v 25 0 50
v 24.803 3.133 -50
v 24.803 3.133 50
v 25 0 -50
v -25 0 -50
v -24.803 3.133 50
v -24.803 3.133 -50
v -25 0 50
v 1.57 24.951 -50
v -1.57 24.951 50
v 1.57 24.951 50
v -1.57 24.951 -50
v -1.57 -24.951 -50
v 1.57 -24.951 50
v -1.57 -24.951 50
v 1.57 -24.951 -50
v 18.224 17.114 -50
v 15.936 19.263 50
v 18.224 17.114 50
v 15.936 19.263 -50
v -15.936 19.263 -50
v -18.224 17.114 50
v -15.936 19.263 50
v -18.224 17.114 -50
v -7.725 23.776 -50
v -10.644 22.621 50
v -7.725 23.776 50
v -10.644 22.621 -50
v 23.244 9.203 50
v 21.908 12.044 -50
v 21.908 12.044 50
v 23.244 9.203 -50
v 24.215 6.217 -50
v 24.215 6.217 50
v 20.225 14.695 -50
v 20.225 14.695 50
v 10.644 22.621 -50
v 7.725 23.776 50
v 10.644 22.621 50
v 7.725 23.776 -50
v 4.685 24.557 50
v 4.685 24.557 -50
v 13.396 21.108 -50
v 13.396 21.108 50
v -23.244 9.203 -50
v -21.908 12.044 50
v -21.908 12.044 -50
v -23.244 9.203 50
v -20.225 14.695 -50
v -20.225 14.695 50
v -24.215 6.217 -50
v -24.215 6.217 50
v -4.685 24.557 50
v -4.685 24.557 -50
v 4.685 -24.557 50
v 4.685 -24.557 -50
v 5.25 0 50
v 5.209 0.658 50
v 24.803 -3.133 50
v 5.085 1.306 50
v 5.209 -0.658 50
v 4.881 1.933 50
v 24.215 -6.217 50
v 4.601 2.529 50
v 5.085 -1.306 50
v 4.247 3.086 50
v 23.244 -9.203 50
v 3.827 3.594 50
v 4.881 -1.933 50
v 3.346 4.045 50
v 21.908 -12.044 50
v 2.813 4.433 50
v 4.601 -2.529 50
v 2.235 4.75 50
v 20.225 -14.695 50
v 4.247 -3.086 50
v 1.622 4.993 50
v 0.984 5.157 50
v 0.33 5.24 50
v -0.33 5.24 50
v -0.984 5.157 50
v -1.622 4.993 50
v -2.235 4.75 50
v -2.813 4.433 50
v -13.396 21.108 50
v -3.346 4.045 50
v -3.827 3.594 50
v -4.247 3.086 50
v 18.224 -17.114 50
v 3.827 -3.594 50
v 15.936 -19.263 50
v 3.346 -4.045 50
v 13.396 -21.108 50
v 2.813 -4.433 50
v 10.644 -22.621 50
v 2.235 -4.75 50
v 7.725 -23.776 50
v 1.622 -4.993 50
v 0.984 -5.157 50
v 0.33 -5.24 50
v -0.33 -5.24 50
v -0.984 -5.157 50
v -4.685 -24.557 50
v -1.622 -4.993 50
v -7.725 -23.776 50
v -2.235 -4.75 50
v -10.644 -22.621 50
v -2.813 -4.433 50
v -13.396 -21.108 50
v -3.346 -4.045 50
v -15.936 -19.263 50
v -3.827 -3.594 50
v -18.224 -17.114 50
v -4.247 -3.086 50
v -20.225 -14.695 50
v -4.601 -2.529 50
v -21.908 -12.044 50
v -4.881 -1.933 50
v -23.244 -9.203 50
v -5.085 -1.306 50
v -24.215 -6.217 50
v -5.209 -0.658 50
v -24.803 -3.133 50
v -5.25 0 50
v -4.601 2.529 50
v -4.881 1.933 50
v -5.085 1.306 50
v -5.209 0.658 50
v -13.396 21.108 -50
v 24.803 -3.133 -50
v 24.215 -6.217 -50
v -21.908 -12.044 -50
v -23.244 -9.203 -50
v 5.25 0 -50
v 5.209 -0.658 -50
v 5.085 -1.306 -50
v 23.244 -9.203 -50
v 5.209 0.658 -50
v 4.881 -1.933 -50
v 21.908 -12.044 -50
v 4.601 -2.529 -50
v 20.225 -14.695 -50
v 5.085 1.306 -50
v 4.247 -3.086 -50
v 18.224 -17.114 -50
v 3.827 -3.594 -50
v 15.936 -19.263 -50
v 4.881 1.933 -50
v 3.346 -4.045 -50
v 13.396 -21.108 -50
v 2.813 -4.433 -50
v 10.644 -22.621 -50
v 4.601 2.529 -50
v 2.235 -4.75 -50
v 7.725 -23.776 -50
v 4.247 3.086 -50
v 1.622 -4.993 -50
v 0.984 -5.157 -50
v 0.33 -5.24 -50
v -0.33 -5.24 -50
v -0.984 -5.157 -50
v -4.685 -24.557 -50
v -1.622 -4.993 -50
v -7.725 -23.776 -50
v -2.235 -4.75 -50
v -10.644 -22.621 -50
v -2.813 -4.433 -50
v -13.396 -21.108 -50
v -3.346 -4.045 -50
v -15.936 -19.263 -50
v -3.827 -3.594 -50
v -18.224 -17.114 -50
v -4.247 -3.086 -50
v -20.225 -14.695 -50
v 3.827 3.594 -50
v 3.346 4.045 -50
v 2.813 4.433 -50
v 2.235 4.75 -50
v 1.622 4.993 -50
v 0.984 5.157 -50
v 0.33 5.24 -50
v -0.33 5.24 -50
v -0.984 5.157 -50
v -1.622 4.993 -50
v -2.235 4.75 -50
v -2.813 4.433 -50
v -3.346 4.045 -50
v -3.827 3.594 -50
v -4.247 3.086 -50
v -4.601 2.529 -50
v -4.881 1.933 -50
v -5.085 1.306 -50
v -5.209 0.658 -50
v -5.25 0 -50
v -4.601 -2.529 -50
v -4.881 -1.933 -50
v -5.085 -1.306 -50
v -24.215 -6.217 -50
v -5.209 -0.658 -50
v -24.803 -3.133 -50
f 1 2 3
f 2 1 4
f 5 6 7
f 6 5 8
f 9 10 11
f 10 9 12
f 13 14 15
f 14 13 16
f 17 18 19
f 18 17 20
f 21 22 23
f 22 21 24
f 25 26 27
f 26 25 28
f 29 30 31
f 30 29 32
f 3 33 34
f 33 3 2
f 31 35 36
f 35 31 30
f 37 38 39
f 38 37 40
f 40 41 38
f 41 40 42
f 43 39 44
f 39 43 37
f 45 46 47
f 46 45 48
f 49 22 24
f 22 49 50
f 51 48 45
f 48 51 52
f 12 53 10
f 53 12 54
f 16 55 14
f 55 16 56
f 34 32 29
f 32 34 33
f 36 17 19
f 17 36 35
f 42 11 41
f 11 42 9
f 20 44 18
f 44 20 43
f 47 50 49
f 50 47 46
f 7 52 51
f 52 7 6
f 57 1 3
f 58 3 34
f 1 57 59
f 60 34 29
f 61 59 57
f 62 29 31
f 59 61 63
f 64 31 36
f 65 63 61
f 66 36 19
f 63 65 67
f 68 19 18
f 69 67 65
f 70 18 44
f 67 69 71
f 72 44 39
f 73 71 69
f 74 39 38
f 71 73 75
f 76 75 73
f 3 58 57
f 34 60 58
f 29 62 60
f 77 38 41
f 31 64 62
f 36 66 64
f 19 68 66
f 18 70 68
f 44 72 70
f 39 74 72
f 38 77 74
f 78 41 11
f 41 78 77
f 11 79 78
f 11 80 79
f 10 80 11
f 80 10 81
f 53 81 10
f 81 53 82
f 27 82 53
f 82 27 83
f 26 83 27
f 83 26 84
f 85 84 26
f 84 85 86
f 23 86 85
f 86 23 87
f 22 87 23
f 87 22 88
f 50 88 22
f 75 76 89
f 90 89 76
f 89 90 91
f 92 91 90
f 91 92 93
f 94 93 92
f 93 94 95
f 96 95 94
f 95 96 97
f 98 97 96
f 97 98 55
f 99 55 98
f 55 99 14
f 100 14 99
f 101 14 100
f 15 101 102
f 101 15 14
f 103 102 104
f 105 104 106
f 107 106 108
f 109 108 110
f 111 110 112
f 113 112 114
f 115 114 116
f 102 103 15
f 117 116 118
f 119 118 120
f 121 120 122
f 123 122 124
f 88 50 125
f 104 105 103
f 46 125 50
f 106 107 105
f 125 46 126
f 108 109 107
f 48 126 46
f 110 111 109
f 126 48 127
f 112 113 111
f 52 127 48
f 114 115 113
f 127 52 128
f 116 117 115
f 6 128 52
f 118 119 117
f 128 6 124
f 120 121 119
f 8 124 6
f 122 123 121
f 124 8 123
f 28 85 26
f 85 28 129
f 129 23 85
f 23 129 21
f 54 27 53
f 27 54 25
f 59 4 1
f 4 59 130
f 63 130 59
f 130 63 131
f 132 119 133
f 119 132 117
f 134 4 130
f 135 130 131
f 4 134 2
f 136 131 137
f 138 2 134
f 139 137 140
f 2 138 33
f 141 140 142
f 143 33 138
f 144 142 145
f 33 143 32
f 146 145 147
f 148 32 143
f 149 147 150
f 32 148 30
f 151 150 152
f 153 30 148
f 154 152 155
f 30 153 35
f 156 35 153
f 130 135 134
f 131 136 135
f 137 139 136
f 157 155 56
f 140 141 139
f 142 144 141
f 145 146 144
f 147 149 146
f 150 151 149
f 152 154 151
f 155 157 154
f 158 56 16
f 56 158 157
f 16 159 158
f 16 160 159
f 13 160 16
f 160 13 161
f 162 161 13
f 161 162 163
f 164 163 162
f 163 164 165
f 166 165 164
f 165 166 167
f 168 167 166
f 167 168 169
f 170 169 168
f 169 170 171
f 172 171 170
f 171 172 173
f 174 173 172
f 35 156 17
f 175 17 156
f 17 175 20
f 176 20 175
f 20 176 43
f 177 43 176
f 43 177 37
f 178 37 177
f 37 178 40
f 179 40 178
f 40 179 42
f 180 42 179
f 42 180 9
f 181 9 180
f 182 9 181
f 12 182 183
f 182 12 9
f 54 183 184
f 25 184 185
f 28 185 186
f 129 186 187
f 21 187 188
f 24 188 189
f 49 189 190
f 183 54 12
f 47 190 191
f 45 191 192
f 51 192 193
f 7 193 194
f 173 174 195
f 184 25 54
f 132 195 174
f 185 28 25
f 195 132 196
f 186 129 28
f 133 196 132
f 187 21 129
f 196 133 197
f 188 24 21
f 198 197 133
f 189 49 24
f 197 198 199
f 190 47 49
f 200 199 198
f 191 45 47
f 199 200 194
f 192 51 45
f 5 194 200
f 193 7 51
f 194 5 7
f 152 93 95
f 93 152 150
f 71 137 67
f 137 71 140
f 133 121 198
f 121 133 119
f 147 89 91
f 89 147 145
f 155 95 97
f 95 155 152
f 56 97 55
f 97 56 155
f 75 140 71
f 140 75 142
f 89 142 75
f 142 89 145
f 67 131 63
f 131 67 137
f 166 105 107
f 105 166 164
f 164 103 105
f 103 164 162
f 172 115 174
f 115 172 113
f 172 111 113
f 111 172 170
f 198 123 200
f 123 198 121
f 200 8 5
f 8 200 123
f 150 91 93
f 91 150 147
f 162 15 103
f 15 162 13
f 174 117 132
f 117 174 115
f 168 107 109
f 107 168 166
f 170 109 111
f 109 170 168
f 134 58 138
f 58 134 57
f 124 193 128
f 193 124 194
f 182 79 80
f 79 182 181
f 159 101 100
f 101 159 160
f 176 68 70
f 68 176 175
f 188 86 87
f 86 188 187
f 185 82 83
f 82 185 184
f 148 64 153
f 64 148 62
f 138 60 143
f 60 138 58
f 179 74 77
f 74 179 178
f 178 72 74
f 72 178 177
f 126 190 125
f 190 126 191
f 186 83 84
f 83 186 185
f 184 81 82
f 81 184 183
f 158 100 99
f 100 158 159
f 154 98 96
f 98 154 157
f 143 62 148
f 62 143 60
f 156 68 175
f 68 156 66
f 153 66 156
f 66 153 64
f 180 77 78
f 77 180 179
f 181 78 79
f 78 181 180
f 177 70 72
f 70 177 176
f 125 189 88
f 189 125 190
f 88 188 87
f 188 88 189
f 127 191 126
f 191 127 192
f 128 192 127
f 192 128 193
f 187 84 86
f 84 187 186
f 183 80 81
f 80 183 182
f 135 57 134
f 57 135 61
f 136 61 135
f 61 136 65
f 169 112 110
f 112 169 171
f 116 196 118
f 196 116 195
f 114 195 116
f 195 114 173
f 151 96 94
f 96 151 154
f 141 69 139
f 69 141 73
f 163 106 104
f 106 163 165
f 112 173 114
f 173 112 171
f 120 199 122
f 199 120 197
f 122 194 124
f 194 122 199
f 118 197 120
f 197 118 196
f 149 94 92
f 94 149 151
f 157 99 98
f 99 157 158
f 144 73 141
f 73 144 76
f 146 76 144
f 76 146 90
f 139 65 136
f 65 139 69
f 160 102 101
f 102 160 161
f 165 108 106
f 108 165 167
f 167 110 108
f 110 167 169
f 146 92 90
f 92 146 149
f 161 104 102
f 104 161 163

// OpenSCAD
$fn = 50;


difference() {
	union() {
		translate(v = [0, 0, -50.0000000000]) {
			cylinder(h = 100, r = 25.0000000000);
		}
	}
	union() {
		translate(v = [0, 0, -100.0000000000]) {
			cylinder(h = 200, r = 5.2500000000);
		}
	}
}
